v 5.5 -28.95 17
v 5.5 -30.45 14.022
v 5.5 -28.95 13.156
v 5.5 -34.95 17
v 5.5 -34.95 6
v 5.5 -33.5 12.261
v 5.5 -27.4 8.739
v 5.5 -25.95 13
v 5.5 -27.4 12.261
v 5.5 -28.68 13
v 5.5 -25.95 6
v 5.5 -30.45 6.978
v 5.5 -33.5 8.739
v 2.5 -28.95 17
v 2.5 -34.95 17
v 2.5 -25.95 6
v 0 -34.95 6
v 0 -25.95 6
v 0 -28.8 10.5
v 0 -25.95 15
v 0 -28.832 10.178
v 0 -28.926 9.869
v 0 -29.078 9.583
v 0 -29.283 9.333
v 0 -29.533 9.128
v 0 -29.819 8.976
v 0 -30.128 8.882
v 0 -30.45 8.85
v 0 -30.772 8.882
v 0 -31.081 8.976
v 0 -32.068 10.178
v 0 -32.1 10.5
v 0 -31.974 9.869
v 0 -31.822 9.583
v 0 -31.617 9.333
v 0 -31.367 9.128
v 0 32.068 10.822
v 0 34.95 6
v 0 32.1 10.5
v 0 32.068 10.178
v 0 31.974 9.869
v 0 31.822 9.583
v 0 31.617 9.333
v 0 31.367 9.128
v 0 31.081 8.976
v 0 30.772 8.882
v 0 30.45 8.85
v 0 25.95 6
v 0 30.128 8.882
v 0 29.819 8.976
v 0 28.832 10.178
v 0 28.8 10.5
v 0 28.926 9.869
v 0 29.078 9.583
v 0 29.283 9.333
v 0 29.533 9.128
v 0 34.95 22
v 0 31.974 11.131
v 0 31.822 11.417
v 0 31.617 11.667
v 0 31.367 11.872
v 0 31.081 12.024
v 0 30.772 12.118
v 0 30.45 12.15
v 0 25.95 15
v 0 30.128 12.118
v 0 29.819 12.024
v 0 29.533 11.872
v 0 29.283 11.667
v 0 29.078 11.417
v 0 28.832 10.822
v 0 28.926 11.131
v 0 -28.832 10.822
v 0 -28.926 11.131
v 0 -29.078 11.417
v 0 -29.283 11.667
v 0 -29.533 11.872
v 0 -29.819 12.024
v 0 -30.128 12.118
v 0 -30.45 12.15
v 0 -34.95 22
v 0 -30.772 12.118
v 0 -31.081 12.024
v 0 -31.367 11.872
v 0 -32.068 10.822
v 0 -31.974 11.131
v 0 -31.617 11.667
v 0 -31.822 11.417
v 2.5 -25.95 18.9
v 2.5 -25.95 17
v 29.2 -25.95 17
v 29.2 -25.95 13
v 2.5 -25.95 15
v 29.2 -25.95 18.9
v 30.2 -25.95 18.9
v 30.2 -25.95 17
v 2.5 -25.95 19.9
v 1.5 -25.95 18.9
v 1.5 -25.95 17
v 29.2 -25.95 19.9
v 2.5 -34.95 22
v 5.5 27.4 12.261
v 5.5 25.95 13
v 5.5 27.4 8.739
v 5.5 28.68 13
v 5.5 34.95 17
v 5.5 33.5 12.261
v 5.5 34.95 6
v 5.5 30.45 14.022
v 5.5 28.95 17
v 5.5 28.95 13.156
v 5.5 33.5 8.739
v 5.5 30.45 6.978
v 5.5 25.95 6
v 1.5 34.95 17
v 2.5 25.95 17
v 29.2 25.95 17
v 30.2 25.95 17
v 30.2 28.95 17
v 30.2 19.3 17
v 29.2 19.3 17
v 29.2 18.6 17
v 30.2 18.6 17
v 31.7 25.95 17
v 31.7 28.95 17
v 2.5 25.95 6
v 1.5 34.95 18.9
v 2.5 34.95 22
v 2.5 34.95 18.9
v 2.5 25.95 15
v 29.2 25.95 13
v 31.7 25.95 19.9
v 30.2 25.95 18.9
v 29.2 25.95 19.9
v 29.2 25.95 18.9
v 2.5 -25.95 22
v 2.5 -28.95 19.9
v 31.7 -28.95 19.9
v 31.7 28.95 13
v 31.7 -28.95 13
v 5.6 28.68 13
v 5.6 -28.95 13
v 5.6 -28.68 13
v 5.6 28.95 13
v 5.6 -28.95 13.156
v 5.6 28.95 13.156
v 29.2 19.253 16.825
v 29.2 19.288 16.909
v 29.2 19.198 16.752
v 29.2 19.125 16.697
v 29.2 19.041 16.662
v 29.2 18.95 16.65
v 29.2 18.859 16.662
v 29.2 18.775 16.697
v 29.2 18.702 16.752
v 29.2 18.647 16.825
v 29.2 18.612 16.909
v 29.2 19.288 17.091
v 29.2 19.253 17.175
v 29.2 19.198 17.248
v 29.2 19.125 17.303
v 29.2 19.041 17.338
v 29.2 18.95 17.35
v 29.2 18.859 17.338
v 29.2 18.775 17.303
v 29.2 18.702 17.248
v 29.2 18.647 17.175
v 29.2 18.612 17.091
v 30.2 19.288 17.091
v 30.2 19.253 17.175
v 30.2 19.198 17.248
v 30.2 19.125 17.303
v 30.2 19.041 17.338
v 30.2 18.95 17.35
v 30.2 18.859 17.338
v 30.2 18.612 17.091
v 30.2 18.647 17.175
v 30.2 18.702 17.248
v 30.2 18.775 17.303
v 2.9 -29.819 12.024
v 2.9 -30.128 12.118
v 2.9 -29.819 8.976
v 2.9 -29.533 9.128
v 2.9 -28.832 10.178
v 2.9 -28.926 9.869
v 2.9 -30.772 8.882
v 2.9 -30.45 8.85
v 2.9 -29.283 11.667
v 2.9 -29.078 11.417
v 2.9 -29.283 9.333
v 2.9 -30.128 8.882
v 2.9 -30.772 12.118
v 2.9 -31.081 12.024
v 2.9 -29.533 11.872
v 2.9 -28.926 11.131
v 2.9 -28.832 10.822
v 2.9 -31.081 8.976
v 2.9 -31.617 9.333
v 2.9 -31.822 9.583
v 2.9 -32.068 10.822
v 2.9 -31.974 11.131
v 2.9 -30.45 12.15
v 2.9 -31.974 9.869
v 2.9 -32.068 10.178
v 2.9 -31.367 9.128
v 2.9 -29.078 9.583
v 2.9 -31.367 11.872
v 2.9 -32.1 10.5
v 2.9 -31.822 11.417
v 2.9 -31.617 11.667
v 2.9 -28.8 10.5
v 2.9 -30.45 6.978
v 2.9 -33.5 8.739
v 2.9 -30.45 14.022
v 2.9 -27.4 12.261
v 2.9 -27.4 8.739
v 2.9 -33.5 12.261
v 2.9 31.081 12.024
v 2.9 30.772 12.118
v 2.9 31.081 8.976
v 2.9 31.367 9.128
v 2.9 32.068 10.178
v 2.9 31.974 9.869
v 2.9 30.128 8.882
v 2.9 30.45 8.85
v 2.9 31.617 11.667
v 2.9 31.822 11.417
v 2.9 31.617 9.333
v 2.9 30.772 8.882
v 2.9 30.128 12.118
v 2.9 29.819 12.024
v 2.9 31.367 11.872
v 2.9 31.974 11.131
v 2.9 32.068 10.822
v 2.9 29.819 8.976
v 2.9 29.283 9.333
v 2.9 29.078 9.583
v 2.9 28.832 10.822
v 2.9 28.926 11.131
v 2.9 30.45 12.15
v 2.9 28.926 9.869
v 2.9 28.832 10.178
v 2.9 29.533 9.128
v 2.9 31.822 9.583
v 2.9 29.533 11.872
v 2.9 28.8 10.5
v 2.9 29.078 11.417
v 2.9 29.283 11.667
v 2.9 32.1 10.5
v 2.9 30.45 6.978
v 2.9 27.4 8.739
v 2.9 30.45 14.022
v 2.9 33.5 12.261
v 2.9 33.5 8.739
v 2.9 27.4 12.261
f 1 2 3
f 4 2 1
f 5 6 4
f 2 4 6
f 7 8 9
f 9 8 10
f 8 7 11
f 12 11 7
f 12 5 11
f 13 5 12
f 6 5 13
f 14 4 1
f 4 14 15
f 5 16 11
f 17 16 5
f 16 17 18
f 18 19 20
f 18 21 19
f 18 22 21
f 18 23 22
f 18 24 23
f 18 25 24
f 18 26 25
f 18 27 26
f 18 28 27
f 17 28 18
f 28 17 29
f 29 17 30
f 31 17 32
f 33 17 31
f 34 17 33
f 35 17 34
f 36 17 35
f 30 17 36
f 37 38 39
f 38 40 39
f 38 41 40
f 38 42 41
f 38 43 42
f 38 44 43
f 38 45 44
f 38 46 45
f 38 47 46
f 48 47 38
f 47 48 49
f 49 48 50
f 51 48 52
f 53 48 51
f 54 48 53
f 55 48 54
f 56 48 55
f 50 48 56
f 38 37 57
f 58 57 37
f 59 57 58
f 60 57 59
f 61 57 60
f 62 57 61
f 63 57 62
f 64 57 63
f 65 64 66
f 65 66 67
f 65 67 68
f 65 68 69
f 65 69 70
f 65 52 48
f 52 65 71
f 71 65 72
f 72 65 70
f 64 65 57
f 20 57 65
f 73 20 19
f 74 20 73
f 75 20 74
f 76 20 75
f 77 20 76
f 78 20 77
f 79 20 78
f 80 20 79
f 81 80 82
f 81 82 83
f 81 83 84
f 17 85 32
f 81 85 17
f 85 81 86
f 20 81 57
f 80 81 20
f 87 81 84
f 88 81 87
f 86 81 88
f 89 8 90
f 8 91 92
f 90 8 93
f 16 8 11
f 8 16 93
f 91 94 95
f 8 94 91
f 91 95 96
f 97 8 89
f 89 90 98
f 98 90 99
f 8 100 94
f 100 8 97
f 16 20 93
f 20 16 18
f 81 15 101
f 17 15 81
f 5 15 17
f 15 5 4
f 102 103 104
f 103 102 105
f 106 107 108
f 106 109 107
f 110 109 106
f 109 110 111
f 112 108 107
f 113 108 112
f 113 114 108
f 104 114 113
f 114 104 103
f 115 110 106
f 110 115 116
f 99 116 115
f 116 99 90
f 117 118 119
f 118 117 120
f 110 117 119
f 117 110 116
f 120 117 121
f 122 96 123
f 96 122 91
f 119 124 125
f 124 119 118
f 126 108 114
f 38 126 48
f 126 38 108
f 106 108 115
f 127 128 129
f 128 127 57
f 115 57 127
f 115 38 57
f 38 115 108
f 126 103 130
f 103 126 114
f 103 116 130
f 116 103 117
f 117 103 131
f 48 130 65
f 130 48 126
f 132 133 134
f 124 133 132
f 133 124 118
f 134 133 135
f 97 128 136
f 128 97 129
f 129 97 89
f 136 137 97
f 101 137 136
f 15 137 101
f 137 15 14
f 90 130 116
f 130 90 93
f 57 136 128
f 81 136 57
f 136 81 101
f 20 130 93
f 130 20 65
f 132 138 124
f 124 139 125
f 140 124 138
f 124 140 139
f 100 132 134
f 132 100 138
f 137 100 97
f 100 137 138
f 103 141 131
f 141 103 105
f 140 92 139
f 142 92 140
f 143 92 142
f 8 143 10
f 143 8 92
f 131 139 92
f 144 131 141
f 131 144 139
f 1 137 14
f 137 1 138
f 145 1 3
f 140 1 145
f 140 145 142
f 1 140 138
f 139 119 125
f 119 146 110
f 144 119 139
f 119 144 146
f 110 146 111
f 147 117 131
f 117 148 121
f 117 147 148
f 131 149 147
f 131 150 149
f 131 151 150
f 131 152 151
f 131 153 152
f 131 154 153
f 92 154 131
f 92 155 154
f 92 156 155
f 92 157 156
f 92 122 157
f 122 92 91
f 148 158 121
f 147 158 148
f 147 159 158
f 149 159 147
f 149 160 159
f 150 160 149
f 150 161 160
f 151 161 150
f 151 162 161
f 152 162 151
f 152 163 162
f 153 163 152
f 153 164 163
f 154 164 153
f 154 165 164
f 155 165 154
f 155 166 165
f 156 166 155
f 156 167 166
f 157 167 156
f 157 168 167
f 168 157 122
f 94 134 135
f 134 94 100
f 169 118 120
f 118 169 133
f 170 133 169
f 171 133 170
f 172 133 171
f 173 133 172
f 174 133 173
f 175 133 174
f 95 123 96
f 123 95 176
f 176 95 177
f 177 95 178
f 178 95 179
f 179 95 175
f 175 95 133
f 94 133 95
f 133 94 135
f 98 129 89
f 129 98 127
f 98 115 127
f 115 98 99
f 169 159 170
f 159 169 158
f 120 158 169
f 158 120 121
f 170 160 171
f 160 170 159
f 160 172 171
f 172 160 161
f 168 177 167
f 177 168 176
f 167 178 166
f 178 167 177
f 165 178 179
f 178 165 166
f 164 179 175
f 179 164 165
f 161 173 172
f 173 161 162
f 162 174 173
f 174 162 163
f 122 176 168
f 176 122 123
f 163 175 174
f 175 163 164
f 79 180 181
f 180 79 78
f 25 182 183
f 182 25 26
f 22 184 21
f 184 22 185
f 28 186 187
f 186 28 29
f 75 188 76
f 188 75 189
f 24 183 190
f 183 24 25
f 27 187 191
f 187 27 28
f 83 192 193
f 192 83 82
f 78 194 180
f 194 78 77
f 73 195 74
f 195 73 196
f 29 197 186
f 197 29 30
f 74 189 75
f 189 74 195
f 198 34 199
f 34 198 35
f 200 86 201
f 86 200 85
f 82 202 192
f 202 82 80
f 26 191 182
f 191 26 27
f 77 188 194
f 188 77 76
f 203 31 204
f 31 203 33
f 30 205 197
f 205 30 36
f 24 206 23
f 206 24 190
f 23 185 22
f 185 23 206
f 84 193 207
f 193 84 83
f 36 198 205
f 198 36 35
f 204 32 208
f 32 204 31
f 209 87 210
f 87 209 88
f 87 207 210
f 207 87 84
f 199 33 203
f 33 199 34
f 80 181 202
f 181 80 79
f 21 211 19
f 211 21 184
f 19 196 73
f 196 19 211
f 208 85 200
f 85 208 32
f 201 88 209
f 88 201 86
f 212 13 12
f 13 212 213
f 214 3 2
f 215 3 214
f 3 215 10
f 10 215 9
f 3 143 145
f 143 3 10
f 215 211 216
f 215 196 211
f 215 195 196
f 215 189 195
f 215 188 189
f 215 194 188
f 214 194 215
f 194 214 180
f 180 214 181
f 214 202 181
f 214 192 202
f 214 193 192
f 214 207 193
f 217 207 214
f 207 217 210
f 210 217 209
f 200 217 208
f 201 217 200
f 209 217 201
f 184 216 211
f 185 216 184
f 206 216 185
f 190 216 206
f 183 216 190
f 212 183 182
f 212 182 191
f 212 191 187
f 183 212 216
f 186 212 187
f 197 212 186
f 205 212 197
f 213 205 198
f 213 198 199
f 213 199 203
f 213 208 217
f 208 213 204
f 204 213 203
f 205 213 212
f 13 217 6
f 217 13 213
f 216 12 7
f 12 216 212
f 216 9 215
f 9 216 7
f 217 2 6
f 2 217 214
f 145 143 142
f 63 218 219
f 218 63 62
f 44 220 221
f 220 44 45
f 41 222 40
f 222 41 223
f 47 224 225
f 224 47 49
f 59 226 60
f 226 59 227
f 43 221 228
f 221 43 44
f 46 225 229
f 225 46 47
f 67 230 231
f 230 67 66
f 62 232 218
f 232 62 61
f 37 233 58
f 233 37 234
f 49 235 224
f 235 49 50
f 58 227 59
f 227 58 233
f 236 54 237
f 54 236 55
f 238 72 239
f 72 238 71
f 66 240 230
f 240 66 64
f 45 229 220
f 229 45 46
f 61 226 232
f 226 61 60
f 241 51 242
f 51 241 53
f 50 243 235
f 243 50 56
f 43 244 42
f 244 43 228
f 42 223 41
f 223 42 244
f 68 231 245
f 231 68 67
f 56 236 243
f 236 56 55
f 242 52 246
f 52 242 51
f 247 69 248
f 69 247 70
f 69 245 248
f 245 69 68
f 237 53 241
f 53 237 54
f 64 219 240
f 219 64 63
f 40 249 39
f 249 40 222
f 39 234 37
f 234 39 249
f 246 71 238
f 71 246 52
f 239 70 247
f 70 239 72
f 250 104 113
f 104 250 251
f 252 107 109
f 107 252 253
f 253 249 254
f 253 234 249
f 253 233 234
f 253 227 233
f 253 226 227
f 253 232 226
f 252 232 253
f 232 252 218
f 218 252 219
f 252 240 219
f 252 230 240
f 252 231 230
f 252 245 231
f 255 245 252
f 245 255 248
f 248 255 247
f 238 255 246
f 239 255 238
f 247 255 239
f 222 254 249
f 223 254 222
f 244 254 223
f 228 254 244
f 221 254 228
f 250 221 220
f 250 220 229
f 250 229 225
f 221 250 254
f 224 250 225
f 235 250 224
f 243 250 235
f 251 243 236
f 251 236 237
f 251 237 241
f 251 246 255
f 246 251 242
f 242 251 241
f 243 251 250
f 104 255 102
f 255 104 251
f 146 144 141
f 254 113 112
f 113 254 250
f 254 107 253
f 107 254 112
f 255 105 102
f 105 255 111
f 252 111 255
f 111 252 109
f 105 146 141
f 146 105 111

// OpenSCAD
// ESP32-WROOM-32 38-pin devkit mount for the DKS-Basic Body_L side panel.
//
// The board hangs horizontally, component side up, held only by a groove along
// each long edge. No floor and no lid: the whole underside is open air, so every
// header pin stays reachable and dupont ends hang free. The board slides in from
// the +y end, which is also the USB end.
//
// Local frame:
//   x = inward from the panel inner face  (x 0   = body X 59)
//   y = along the panel, 0 at mount centre (y 0   = body Y -10, see README)
//   z = up                                 (z 0   = body Z 10, z 22 = the rim)
//
// Measured off DKS-Basic_DukeDoks_Body_L.stl: the inner face is flat and
// vertical over body Y -58..+56, the panel is exactly 6.00 mm thick (X 59..65)
// with a flat top rim at Z 32, and three chassis clip slots pierce it at
// Z 6.5..8.5. Nothing may sit below body Z 10.

part = "mount";              // "mount", "gauge" or "check"

/* [Board] measure yours, devkits vary by a few tenths */
board_l    = 51.5;           // along y
board_w    = 28.3;           // along x, inward from the panel
board_t    = 1.6;            // PCB thickness
fit        = 0.4;            // total slack on length and width
slack      = 0.3;            // vertical slack in the groove
edge_grip  = 1.0;            // how far the groove reaches onto the PCB edge.
                             // Drop to ~0.7 if the header plastic runs flush to
                             // the board edge and fouls the lower ledge.

/* [Frame] */
plate_t    = 2.5;            // back plate against the panel inner face
rail_t     = 2.5;            // outboard rail
arm_w      = 3.0;            // end arms, they sit outside the board ends
plate_h    = 22.0;           // z 0..22, top flush with the panel rim
z_board    = 17.0;           // underside of the PCB
under_arm  = 4.0;            // arm depth below the board
click      = 0.35;           // detent the board snaps over on the way in

/* [Panel + screws] */
panel_thk  = 6.0;            // measured: body X 59 -> 65
boss_x     = 5.5;            // nut boss depth
boss_yz    = 9.0;            // nut boss section
nut_af     = 6.1;            // M3 hex nut across flats + slack
nut_d      = 2.6;            // nut pocket depth
hole_d     = 3.3;            // M3 clearance

/* derived */
pl    = board_l + fit;               // pocket length
pw    = board_w + fit;               // pocket width
gap   = board_t + slack;             // groove height
x_pf  = plate_t;                     // plate face toward the board
x_b0  = x_pf - edge_grip;            // board inner edge, buried in the groove
x_b1  = x_b0 + pw;                   // board outer edge
x_rf  = x_b1 - edge_grip;            // rail face toward the board
x_end = x_rf + rail_t;
y_arm = pl/2;                        // arms start here, outside the board
boss_y0 = y_arm;                      // bosses start at the arms, clear of the pins
plate_l = 2*(boss_y0 + boss_yz);
screw_y = boss_y0 + boss_yz/2;
screw_z = 10.5;
plate_z0 = z_board - 2;              // the plate stops just under the board so
                                     // dupont housings on the inner header row
                                     // have open air all the way to the panel

/* keep-out checks against the measured panel */
z0_body  = 10.0;                     // body Z of z = 0
assert(z0_body >= 9.0, "mount would foul the chassis clip slots at body Z 6.5-8.5");
assert(z0_body + plate_h <= 32.0, "mount stands proud of the panel top rim");
assert(plate_l/2 <= 56.0, "mount is longer than the flat run of the panel");
assert(z_board + board_t + 1 <= plate_h, "board sticks out above the panel rim");
assert(boss_y0 >= board_l/2, "nut boss sits inside the header rows");
assert(screw_z + boss_yz/2 < z_board, "nut boss collides with the board");
assert(plate_z0 < z_board, "no ledge left for the inner groove");
assert(click > slack, "detent is shallower than the groove slack, board will not stay put");

module frame() {
    // back plate against the panel, only down to just under the board
    translate([0, -plate_l/2, plate_z0]) cube([x_pf, plate_l, plate_h - plate_z0]);
    // end stop arm, full height, closes the -y end of the groove
    translate([0, -y_arm - arm_w, z_board - under_arm])
        cube([x_end, arm_w, under_arm + gap + 1]);
    // entry arm, kept below the board so the board can slide in over it
    translate([0, y_arm, z_board - under_arm])
        cube([x_end, arm_w, under_arm]);
    // outboard rail
    translate([x_rf, -y_arm - arm_w, z_board - under_arm])
        cube([rail_t, 2*y_arm + arm_w, under_arm + gap + 1]);
    // nut bosses, outside the header rows so they never shadow a pin
    for (s = [-1, 1])
        translate([0, s > 0 ? boss_y0 : -boss_y0 - boss_yz, screw_z - boss_yz/2])
            cube([boss_x, boss_yz, z_board - (screw_z - boss_yz/2)]);
}

module pockets() {
    // the board slot itself, run out past the +y end so the board slides in
    translate([x_b0, -y_arm, z_board])
        cube([pw, y_arm + plate_l/2, gap]);
    // everything under the board between the lips: open air for the pins
    translate([x_pf, -y_arm, z_board - 40])
        cube([x_rf - x_pf, 2*y_arm, 40]);
    // and above it, so the USB shell and any wiring clear the frame
    translate([x_pf, -y_arm, z_board + gap])
        cube([x_rf - x_pf, y_arm + plate_l/2, 40]);
}

module screw_cuts() {
    for (s = [-1, 1]) translate([0, s*screw_y, screw_z]) {
        rotate([0, 90, 0]) translate([0, 0, -1])
            cylinder(h = boss_x + 2, d = hole_d, $fn = 32);
        // hex pocket opens inward, drop the nut in from the cabin side
        translate([boss_x - nut_d, 0, 0]) rotate([0, 90, 0])
            cylinder(h = nut_d + 0.1, d = nut_af/cos(30), $fn = 6);
    }
}

module detent() {
    // ridge on the rail ledge near the entry, the PCB rides over it and clicks
    translate([x_rf, pl/2 - 7, z_board])
        rotate([0, 90, 0]) rotate([0, 0, 90])
            cylinder(h = edge_grip, r = click, $fn = 24);
}

module mount() {
    union() {
        difference() { frame(); pockets(); }
        detent();
    }
    // screw features last so the pocket cut cannot eat the nut recess
}

module seated_board() {
    translate([x_b0 + fit/2, -board_l/2, z_board + slack/2])
        cube([board_w, board_l, board_t]);
}

if (part == "check")
    // Self-check: a seated board must touch nothing but the detent (excluded here).
    //   openscad -o chk.stl -D 'part="check"' ESP32_Body_Mount.scad   -> empty file
    intersection() { difference() { frame(); pockets(); } seated_board(); }
else if (part == "gauge")
    // 18 mm slice of the entry end: both grooves, the rail, the detent
    intersection() {
        difference() { mount(); screw_cuts(); }
        translate([-1, pl/2 - 12, -1]) cube([x_end + 2, 18, plate_h + 2]);
    }
else
    difference() { mount(); screw_cuts(); }
